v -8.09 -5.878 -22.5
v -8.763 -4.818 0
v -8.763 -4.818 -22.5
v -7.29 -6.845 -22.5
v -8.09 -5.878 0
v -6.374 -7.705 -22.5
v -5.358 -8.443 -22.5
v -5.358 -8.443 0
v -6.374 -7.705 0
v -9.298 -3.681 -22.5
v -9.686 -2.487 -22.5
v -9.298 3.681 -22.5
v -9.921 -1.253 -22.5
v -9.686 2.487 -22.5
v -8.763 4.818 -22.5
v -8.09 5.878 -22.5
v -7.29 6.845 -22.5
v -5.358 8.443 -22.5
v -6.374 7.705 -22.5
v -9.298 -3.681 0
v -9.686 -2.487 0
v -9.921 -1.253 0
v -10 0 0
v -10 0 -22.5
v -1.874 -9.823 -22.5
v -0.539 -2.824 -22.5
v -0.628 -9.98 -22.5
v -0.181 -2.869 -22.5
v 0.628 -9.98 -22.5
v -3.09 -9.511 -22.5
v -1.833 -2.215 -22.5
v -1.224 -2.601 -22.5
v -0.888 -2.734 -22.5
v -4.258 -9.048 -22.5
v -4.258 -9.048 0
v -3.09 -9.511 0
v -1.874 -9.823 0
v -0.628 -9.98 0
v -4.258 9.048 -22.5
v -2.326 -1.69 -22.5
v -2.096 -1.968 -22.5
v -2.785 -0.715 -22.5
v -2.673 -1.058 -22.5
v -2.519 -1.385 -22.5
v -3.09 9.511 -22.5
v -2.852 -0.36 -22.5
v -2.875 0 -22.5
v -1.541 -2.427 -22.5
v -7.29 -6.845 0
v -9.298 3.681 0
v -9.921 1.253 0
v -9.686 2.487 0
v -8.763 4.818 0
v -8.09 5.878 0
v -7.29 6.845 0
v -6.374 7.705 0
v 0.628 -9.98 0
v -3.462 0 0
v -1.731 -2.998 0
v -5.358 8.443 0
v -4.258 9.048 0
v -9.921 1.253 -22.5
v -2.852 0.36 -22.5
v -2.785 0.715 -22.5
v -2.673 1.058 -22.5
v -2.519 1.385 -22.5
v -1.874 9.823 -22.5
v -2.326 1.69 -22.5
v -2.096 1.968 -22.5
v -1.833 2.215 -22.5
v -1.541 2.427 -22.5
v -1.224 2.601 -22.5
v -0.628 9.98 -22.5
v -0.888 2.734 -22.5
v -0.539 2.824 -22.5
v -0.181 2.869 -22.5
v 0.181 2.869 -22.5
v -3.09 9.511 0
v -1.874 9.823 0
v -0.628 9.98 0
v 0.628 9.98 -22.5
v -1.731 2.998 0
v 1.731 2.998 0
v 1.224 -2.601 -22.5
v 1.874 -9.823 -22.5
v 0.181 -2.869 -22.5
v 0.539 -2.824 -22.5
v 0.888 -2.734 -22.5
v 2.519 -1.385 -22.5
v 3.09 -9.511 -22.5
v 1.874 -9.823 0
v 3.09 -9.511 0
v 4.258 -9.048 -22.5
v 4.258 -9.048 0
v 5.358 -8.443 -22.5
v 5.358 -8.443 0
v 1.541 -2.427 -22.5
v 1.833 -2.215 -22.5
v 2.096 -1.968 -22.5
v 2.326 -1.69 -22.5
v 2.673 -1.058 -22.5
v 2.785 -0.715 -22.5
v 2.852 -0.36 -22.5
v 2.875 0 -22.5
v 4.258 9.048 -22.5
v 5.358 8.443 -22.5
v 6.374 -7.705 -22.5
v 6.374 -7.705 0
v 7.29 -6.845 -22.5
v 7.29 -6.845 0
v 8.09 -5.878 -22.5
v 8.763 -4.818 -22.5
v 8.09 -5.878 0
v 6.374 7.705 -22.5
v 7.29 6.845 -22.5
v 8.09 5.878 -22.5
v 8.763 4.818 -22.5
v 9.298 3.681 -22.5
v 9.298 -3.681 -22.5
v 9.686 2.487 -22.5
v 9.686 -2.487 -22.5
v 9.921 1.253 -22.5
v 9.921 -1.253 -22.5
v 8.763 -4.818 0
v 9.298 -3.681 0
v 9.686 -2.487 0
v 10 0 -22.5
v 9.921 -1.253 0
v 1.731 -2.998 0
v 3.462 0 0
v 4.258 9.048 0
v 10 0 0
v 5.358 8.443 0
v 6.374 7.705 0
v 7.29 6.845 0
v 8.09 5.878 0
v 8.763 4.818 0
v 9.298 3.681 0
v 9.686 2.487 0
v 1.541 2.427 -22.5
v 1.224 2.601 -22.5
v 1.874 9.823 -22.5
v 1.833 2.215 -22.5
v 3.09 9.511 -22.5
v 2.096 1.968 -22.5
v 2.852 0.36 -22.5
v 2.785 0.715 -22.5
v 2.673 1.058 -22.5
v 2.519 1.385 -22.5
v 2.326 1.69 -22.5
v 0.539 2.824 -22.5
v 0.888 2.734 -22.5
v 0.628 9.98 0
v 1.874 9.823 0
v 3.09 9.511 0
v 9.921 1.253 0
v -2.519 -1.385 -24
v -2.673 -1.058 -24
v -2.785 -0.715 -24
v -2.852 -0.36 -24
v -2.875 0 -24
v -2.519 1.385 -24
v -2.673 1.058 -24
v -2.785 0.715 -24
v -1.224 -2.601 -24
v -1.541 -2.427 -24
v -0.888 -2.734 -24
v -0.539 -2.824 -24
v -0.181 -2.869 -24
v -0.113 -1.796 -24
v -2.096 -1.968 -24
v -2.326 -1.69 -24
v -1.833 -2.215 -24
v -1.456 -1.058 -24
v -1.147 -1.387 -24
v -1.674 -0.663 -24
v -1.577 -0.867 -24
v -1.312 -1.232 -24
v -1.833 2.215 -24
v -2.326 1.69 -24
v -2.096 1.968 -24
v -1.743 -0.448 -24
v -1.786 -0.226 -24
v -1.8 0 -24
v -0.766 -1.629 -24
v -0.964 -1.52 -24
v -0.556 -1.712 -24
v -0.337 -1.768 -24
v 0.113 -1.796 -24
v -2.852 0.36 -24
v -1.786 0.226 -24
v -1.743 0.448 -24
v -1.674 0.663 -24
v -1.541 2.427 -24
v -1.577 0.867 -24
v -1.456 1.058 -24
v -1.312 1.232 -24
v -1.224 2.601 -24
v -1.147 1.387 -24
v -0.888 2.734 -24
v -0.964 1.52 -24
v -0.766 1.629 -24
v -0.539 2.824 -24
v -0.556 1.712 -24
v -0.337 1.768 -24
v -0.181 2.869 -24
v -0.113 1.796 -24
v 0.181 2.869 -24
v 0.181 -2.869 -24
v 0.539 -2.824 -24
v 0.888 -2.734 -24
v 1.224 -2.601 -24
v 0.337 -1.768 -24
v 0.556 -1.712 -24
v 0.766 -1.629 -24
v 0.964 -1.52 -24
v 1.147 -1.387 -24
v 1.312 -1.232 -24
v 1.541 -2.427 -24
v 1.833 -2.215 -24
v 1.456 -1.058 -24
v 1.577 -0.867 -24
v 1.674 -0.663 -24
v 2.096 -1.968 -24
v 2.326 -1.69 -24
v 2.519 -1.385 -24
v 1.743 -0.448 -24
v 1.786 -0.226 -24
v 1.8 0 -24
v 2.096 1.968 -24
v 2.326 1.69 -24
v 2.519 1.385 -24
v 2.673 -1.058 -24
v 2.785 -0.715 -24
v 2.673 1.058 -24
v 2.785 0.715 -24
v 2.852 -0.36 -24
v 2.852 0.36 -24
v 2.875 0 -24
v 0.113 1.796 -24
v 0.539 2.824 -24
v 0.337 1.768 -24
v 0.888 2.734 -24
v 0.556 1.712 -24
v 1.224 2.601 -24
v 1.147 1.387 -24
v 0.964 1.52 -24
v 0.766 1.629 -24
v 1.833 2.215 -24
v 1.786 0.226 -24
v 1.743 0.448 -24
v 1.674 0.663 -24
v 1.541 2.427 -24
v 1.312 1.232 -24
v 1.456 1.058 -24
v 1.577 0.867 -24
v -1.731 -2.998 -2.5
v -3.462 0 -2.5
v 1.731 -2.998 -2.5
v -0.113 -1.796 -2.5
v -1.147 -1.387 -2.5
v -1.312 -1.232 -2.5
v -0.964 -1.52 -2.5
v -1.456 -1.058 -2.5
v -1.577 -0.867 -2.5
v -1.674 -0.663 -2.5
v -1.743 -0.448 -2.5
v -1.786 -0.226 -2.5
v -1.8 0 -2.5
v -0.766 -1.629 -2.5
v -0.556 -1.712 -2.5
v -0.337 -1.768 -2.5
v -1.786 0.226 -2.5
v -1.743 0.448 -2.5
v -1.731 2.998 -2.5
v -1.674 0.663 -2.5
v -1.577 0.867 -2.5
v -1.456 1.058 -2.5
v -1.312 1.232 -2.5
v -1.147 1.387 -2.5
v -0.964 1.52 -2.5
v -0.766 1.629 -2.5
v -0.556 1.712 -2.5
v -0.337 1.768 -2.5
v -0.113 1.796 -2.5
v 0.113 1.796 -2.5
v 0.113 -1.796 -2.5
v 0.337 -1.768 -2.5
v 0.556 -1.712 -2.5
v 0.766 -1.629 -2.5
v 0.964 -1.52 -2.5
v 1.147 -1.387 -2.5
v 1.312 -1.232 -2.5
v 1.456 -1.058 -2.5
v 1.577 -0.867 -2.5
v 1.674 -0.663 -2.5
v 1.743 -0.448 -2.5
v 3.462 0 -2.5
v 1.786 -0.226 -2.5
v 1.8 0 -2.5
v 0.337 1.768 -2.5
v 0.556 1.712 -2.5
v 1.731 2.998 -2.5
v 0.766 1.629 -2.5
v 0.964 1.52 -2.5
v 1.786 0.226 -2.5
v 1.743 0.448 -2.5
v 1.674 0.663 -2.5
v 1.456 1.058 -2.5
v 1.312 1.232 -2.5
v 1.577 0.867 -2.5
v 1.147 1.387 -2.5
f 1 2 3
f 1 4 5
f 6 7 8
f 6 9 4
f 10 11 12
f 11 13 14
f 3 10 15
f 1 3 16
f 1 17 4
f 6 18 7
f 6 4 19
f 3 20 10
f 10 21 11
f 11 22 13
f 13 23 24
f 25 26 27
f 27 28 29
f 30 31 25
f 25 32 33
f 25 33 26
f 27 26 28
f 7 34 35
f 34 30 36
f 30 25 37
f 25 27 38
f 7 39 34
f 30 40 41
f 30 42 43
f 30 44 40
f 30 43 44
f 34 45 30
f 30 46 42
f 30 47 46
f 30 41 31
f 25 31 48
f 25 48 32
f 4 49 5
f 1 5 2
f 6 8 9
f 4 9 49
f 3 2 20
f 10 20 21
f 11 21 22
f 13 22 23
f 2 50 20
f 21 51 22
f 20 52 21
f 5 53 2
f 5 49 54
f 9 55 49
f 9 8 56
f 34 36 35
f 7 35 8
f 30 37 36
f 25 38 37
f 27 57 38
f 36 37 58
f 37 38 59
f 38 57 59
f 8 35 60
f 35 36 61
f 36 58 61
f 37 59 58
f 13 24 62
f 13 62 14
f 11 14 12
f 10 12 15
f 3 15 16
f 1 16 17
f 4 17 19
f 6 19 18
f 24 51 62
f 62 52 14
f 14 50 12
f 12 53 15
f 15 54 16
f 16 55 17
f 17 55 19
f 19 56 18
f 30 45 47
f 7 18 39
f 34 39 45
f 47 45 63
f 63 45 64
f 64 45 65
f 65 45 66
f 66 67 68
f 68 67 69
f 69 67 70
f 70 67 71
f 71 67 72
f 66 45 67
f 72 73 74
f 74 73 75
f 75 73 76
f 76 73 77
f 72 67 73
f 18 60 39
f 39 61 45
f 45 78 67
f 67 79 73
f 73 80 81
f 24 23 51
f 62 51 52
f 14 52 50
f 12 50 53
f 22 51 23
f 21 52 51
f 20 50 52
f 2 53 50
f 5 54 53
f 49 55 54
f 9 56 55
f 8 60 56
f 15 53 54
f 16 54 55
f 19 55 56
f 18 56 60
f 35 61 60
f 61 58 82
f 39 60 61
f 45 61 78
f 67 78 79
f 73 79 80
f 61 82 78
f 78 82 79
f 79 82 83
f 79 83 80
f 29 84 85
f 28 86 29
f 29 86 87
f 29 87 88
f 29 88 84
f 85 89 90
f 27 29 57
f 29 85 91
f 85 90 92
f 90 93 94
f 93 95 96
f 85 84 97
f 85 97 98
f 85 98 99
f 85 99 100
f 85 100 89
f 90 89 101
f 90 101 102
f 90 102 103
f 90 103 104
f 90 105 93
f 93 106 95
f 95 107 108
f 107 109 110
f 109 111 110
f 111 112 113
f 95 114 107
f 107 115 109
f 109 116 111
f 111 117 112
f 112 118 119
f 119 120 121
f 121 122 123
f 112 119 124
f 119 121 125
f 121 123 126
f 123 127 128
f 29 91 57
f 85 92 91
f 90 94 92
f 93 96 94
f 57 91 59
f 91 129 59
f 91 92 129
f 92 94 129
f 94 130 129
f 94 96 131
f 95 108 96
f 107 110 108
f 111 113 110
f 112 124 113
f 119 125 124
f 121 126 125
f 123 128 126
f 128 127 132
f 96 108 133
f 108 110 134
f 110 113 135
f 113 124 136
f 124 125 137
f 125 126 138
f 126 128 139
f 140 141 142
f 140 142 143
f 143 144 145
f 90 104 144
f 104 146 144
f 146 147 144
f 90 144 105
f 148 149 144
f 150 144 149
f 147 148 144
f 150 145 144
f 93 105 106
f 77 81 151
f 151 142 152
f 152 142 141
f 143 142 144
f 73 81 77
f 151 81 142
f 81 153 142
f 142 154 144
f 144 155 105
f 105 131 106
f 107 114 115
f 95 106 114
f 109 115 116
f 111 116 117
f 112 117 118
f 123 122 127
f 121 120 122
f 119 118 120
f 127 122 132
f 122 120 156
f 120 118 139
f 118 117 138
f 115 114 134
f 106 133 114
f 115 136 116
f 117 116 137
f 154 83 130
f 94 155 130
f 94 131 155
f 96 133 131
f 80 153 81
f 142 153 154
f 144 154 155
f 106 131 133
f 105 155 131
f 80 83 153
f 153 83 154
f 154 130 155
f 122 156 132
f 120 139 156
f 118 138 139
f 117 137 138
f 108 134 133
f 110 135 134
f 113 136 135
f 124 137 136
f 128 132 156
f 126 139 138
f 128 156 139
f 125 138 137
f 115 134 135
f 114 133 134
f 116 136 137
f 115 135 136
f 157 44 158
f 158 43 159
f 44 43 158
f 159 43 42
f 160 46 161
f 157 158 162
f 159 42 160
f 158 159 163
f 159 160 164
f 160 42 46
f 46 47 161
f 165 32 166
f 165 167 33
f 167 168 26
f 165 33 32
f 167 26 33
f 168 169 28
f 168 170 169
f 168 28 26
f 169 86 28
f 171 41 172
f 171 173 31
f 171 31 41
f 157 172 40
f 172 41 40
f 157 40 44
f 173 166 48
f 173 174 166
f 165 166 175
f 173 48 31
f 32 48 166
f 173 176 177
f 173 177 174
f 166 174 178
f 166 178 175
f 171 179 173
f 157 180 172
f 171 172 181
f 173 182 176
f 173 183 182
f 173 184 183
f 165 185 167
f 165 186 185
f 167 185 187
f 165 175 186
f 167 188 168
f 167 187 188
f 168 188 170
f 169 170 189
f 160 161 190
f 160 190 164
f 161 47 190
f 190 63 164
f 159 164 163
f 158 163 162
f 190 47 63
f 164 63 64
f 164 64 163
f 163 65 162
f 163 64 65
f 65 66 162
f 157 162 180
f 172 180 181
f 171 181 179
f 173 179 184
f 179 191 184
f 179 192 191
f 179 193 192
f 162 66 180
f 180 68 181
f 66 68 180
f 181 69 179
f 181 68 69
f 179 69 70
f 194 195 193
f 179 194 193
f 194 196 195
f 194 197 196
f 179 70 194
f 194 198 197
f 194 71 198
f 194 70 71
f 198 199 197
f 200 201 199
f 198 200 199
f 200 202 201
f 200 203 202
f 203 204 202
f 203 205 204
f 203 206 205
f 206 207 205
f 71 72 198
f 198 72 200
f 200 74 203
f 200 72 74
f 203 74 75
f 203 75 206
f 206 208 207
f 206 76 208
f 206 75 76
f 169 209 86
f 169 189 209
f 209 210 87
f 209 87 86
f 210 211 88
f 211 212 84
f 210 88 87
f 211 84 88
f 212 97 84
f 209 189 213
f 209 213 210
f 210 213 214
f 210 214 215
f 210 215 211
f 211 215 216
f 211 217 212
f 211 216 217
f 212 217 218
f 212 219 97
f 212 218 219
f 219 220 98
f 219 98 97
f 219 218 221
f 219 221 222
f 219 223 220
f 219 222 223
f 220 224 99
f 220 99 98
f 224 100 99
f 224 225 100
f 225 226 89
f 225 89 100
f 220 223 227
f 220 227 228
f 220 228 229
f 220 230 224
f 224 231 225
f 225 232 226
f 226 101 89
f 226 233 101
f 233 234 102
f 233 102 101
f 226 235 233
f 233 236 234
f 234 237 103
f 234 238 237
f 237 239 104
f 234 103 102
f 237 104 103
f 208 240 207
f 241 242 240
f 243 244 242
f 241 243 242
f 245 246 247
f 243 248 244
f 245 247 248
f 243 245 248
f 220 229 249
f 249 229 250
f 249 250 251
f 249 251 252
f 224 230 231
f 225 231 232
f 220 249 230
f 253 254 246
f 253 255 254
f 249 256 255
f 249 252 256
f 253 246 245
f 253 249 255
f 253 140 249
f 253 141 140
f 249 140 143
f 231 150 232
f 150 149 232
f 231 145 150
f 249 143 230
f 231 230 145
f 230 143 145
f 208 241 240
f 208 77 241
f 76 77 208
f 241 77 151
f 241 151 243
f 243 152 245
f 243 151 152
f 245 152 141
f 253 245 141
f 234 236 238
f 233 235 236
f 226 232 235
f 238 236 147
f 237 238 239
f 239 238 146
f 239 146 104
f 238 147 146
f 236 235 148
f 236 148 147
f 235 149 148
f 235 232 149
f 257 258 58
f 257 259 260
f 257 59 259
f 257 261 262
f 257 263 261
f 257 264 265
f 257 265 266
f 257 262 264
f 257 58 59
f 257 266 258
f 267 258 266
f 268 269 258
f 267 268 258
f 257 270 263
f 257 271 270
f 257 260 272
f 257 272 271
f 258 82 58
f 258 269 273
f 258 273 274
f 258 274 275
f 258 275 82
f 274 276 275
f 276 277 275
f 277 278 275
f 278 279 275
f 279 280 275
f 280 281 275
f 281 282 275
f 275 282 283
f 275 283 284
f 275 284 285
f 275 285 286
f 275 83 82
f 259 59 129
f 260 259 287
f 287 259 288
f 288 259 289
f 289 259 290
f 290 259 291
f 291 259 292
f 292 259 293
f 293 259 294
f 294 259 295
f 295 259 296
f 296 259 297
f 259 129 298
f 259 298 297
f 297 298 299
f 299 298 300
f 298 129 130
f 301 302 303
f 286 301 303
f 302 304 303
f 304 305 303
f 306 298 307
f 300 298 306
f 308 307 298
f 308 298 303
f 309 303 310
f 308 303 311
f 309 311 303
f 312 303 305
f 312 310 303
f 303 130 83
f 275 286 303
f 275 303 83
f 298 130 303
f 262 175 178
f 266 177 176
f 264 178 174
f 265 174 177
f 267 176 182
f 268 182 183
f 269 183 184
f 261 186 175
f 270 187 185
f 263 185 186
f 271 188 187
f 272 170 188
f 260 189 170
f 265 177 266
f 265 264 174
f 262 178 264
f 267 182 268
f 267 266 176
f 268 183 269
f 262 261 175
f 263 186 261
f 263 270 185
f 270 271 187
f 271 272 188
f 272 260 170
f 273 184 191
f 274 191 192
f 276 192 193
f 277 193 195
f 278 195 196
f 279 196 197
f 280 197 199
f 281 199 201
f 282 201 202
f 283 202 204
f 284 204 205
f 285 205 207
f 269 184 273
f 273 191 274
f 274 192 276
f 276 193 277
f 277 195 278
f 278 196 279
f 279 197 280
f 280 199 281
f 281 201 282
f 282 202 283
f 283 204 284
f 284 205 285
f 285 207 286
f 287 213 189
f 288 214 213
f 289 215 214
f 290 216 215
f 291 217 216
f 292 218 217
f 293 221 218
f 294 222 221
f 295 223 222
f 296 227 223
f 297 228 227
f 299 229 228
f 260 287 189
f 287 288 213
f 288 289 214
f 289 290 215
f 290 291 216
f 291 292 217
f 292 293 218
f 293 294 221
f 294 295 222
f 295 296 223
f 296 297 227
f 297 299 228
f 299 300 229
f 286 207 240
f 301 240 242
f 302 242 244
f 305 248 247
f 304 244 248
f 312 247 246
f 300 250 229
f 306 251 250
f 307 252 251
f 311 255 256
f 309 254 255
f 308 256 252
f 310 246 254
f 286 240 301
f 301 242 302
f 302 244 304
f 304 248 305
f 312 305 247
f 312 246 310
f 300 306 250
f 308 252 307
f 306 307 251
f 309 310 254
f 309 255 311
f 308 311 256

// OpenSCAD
$fn = 50;

difference() {
	union() {
		translate(v = [0, 0, -22.5]) {
			cylinder(h = 22.5, r = 10.0);
		}
		#translate(v = [0, 0, -24.0]) {
			cylinder(h = 24, r = 2.875);
		}
	}
	union() {
		translate(v = [0, 0, 0]) {
			rotate(a = [0, 0, 0]) {
				difference() {
					union() {
						translate(v = [0, 0, -2.5]) {
							linear_extrude(height = 2.5) {
								polygon(points = [[3.4619999999999997, 0.0], [1.7310000000000003, 2.9981799479017264], [-1.7309999999999992, 2.9981799479017264], [-3.4619999999999997, 4.2397272186481365e-16], [-1.7310000000000014, -2.998179947901726], [1.7309999999999977, -2.9981799479017277]]);
							}
						}
					}
					union();
				}
			}
		}
		#translate(v = [0, 0, -100.0]) {
			cylinder(h = 200, r = 1.8);
		}
	}
}
